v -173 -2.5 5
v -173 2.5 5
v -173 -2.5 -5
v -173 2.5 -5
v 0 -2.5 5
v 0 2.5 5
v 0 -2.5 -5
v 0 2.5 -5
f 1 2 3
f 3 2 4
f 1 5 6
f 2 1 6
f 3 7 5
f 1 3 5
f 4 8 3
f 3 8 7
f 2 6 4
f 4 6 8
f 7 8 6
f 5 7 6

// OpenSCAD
  
     translate([-168-5,-2.5,-5]) cube(size=[168+5,5,10]);
 
